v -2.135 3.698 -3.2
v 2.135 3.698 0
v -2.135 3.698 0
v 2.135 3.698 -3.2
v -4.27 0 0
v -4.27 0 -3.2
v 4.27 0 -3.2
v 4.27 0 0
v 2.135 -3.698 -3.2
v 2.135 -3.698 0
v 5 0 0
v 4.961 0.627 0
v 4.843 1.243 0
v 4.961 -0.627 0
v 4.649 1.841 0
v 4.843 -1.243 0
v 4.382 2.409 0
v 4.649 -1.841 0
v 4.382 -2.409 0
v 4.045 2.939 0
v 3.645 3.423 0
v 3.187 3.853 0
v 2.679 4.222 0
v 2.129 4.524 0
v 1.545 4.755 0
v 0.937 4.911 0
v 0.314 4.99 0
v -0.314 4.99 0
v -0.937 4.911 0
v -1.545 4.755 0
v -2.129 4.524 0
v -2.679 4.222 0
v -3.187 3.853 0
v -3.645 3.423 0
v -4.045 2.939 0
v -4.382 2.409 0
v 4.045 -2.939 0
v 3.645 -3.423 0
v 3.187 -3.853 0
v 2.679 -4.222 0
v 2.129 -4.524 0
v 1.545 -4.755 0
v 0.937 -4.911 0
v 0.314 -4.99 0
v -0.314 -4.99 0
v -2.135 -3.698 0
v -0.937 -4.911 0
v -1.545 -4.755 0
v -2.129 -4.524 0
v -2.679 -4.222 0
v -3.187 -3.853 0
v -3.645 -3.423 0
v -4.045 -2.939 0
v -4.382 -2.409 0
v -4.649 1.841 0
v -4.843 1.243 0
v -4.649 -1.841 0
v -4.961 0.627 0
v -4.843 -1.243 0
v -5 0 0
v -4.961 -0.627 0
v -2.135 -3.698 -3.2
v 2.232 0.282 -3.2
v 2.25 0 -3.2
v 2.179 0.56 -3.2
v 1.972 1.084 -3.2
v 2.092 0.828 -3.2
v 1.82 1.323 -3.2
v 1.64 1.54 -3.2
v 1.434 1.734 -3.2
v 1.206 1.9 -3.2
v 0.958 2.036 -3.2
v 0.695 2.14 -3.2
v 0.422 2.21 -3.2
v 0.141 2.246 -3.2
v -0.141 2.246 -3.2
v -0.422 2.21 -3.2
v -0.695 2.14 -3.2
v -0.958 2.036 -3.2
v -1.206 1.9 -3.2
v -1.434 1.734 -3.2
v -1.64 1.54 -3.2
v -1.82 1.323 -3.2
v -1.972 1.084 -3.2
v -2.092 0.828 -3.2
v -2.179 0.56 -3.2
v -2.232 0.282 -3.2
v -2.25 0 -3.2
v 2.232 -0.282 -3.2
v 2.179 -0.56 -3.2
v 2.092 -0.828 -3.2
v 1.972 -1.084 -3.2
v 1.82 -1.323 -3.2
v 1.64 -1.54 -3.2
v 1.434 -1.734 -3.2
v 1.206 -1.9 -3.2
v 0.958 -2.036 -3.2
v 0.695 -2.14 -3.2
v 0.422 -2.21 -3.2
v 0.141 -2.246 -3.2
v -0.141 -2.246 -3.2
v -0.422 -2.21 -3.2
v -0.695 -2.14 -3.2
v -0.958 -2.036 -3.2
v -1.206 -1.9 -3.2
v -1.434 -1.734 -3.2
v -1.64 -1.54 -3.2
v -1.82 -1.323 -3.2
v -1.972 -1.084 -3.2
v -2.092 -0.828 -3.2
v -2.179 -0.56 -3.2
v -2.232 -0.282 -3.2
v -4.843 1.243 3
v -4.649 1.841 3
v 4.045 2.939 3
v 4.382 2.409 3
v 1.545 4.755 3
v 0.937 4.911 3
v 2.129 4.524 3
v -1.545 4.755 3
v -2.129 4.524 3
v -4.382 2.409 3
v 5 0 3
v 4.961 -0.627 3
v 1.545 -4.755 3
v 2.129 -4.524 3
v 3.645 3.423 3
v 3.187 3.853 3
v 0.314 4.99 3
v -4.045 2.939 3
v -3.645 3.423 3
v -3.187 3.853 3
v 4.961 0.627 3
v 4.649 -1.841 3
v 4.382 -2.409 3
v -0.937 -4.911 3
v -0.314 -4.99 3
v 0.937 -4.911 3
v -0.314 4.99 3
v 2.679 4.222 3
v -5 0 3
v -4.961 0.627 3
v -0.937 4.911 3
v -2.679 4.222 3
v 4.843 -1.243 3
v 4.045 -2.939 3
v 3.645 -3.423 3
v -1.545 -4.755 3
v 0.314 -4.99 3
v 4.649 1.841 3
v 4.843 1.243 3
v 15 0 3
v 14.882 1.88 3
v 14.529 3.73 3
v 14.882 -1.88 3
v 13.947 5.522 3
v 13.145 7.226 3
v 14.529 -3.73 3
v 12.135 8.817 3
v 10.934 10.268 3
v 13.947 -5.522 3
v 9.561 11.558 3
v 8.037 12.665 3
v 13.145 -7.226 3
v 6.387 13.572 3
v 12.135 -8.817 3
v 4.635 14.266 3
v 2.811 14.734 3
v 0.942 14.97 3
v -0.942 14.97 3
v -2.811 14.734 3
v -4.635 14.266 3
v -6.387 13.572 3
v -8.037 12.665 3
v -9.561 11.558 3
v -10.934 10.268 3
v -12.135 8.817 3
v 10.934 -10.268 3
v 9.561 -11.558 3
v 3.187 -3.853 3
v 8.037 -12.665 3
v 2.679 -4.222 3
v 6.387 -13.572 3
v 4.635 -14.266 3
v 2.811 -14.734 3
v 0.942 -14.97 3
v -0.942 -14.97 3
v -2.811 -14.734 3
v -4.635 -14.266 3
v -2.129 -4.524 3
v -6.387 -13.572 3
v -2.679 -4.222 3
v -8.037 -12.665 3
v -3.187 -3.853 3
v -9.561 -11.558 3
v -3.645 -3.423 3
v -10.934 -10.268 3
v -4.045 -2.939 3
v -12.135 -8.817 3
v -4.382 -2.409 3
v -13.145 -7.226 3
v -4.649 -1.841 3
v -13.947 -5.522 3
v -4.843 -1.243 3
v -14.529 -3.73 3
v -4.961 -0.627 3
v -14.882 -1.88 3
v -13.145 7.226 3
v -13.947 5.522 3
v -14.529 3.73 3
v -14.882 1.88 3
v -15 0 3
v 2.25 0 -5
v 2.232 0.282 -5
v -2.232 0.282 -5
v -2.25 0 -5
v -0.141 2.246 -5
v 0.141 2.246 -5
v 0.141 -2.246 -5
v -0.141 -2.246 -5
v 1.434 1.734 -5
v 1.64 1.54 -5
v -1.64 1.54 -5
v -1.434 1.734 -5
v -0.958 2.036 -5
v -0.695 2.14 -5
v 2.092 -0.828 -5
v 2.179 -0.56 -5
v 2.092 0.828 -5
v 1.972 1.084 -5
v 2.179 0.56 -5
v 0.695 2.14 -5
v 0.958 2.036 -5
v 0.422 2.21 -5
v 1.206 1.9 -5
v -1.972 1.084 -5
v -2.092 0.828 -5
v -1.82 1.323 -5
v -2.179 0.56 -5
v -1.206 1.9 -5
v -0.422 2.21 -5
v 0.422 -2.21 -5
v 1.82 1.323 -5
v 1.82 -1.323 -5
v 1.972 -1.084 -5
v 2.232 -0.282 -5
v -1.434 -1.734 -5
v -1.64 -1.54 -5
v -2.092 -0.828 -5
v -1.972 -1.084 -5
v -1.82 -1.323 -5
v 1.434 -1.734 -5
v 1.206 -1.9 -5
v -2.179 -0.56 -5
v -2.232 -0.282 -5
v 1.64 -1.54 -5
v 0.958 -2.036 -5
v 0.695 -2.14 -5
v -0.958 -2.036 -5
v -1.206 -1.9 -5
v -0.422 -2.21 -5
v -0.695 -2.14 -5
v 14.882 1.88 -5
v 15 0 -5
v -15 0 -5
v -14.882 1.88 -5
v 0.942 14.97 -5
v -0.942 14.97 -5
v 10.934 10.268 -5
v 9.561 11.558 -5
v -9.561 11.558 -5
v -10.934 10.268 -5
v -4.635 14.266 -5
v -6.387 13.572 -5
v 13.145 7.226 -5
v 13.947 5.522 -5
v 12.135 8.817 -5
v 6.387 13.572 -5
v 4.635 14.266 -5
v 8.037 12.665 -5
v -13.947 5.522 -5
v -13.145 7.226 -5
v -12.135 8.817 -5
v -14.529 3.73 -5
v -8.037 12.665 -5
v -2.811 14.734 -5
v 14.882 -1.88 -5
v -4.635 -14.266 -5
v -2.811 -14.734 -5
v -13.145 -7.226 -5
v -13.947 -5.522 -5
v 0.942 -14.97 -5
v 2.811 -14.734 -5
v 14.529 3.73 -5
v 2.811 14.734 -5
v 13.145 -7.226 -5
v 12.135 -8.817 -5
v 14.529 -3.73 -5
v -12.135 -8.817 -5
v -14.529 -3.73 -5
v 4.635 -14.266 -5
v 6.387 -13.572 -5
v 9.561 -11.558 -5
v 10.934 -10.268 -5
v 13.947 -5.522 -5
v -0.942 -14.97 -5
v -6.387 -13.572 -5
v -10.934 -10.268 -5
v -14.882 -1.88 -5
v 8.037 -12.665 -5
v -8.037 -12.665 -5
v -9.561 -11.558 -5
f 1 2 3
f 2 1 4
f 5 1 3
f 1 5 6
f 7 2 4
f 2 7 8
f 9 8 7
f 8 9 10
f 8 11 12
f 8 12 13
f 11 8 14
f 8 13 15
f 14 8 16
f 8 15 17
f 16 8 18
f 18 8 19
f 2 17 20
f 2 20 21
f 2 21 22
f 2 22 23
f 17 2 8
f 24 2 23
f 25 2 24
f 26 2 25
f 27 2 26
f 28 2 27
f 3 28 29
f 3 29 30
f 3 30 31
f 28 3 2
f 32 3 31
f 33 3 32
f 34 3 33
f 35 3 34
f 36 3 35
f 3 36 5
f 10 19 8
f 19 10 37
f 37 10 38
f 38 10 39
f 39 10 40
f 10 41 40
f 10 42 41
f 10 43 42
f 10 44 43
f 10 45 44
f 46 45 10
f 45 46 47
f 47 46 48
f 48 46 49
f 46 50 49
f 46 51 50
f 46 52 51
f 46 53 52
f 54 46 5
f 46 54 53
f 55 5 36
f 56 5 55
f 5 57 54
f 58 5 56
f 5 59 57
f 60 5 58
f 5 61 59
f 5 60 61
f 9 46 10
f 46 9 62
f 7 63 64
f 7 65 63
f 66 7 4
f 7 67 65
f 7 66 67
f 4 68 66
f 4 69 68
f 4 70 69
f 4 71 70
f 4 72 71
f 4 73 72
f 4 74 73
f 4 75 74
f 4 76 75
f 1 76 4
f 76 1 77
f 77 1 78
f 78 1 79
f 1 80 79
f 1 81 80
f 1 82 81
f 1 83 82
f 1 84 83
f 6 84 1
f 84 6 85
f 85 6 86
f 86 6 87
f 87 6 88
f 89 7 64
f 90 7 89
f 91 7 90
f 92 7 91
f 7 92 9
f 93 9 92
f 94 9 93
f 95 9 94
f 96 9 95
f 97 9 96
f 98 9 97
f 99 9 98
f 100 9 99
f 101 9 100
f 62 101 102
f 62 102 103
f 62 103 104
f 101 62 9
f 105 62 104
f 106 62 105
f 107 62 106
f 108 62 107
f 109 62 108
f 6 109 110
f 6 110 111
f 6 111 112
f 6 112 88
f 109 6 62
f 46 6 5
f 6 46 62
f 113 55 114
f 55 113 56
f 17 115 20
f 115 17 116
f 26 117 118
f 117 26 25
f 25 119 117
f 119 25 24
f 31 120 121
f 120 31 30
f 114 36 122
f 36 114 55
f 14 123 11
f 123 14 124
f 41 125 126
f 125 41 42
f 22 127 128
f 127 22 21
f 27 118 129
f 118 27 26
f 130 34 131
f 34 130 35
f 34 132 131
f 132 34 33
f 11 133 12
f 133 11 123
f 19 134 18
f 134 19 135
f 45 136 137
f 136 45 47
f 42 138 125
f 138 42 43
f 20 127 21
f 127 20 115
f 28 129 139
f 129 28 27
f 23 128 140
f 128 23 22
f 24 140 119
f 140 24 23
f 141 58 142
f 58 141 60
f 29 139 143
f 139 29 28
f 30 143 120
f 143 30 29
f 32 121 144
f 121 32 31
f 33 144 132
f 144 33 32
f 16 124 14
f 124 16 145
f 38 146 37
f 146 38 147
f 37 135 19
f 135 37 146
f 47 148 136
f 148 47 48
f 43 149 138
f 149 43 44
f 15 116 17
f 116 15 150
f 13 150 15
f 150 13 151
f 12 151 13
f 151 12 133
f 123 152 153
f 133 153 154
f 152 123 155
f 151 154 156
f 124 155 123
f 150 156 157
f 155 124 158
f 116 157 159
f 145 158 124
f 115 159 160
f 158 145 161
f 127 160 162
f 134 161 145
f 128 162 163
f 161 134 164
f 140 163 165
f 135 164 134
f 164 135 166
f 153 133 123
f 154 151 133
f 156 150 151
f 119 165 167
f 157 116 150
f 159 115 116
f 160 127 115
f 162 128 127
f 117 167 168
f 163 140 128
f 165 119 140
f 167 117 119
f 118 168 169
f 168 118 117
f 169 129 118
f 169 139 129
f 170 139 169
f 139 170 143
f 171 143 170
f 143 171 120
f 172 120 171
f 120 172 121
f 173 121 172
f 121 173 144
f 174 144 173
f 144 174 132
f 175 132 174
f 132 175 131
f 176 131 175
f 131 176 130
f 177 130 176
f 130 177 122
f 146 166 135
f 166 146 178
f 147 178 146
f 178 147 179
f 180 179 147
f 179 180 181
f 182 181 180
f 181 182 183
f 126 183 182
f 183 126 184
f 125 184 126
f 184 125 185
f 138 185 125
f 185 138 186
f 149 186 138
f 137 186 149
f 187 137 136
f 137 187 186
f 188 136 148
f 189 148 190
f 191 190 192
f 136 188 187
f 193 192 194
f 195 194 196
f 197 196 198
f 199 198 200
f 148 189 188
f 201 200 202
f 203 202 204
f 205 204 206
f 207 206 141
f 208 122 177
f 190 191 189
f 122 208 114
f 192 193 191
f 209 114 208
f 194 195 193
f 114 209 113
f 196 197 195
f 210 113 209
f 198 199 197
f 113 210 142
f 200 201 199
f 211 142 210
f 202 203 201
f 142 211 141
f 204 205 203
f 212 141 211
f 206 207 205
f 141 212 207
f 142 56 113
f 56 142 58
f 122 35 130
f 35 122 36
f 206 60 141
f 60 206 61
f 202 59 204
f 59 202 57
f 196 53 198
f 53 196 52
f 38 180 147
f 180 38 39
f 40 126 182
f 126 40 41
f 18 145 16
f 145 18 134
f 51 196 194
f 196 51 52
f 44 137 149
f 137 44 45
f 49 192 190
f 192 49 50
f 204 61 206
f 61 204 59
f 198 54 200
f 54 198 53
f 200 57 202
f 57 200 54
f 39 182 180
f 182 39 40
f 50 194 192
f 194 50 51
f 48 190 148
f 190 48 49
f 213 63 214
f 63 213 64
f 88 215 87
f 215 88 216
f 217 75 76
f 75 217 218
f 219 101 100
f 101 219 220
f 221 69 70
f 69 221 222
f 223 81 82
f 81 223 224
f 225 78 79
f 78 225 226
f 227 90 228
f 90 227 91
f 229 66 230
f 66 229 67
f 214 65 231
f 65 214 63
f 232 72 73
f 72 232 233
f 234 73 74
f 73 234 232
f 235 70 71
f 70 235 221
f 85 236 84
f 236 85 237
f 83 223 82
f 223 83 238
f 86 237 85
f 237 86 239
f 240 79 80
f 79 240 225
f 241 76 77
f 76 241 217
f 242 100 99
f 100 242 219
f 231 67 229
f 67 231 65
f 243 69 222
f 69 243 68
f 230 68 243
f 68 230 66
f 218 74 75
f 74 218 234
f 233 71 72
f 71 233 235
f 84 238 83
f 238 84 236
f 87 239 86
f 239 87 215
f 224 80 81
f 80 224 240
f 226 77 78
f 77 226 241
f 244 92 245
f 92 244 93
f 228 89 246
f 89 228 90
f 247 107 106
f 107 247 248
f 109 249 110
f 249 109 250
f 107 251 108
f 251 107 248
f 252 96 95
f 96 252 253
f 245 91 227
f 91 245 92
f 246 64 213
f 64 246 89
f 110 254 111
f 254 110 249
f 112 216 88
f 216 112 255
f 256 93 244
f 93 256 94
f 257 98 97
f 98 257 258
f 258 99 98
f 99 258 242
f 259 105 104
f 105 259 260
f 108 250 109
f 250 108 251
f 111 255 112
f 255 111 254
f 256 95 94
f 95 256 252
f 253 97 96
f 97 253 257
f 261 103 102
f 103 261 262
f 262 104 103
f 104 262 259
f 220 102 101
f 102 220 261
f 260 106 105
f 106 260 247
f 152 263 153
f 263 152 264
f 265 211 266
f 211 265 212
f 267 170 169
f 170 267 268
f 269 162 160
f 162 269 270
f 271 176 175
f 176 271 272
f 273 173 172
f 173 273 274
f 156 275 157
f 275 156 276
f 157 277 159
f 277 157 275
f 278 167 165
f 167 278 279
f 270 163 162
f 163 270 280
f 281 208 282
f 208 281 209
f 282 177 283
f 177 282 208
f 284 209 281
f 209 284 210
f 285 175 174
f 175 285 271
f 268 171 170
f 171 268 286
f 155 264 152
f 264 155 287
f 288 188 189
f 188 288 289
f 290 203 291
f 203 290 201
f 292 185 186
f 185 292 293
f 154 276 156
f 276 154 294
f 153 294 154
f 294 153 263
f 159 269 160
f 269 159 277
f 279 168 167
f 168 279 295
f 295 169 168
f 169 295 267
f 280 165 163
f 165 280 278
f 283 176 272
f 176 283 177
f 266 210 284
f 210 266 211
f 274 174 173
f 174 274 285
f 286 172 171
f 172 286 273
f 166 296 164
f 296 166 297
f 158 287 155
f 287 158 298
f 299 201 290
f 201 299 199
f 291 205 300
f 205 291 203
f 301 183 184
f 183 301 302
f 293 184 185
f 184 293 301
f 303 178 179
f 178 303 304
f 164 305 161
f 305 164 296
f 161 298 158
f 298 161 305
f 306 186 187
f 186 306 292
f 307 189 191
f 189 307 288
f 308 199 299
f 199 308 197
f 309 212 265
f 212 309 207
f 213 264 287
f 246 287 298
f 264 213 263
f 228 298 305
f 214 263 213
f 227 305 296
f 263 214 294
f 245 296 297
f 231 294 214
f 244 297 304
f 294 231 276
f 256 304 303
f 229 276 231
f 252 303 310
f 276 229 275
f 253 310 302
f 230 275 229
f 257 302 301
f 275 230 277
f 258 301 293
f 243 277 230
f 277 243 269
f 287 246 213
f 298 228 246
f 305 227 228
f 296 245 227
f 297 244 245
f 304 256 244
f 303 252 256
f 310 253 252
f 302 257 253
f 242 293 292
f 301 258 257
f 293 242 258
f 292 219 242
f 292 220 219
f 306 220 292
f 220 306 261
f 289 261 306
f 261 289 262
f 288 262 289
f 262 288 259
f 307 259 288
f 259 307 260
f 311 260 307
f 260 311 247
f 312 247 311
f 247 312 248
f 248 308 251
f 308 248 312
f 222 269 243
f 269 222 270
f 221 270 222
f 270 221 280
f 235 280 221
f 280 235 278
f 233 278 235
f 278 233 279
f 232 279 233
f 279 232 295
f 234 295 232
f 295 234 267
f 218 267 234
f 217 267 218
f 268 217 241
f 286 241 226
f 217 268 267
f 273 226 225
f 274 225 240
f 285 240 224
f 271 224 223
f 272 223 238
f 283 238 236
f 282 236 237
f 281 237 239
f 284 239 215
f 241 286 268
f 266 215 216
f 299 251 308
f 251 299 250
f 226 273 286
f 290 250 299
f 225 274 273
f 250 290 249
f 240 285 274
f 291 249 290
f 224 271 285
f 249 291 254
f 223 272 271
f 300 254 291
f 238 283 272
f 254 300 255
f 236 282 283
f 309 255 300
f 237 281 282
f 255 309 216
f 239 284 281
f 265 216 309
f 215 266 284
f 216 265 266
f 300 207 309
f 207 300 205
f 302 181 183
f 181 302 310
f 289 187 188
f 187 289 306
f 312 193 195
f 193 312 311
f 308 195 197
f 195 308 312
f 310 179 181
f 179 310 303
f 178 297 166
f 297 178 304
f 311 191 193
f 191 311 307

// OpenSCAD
$fn = 50;


difference() {
	union() {
		translate(v = [0, 0, -5.0000000000]) {
			cylinder(h = 8.0000000000, r = 15.0000000000);
		}
	}
	union() {
		translate(v = [0, 0, 0]) {
			rotate(a = [0, 0, 0]) {
				difference() {
					union() {
						translate(v = [0, 0, -3.2000000000]) {
							linear_extrude(height = 3.2000000000) {
								polygon(points = [[4.2698000000, 0.0000000000], [2.1349000000, 3.6977552691], [-2.1349000000, 3.6977552691], [-4.2698000000, 0.0000000000], [-2.1349000000, -3.6977552691], [2.1349000000, -3.6977552691]]);
							}
						}
					}
					union();
				}
			}
		}
		#cylinder(h = 3, r = 5.0000000000);
		#translate(v = [0, 0, -100.0000000000]) {
			cylinder(h = 200, r = 2.2500000000);
		}
	}
}
